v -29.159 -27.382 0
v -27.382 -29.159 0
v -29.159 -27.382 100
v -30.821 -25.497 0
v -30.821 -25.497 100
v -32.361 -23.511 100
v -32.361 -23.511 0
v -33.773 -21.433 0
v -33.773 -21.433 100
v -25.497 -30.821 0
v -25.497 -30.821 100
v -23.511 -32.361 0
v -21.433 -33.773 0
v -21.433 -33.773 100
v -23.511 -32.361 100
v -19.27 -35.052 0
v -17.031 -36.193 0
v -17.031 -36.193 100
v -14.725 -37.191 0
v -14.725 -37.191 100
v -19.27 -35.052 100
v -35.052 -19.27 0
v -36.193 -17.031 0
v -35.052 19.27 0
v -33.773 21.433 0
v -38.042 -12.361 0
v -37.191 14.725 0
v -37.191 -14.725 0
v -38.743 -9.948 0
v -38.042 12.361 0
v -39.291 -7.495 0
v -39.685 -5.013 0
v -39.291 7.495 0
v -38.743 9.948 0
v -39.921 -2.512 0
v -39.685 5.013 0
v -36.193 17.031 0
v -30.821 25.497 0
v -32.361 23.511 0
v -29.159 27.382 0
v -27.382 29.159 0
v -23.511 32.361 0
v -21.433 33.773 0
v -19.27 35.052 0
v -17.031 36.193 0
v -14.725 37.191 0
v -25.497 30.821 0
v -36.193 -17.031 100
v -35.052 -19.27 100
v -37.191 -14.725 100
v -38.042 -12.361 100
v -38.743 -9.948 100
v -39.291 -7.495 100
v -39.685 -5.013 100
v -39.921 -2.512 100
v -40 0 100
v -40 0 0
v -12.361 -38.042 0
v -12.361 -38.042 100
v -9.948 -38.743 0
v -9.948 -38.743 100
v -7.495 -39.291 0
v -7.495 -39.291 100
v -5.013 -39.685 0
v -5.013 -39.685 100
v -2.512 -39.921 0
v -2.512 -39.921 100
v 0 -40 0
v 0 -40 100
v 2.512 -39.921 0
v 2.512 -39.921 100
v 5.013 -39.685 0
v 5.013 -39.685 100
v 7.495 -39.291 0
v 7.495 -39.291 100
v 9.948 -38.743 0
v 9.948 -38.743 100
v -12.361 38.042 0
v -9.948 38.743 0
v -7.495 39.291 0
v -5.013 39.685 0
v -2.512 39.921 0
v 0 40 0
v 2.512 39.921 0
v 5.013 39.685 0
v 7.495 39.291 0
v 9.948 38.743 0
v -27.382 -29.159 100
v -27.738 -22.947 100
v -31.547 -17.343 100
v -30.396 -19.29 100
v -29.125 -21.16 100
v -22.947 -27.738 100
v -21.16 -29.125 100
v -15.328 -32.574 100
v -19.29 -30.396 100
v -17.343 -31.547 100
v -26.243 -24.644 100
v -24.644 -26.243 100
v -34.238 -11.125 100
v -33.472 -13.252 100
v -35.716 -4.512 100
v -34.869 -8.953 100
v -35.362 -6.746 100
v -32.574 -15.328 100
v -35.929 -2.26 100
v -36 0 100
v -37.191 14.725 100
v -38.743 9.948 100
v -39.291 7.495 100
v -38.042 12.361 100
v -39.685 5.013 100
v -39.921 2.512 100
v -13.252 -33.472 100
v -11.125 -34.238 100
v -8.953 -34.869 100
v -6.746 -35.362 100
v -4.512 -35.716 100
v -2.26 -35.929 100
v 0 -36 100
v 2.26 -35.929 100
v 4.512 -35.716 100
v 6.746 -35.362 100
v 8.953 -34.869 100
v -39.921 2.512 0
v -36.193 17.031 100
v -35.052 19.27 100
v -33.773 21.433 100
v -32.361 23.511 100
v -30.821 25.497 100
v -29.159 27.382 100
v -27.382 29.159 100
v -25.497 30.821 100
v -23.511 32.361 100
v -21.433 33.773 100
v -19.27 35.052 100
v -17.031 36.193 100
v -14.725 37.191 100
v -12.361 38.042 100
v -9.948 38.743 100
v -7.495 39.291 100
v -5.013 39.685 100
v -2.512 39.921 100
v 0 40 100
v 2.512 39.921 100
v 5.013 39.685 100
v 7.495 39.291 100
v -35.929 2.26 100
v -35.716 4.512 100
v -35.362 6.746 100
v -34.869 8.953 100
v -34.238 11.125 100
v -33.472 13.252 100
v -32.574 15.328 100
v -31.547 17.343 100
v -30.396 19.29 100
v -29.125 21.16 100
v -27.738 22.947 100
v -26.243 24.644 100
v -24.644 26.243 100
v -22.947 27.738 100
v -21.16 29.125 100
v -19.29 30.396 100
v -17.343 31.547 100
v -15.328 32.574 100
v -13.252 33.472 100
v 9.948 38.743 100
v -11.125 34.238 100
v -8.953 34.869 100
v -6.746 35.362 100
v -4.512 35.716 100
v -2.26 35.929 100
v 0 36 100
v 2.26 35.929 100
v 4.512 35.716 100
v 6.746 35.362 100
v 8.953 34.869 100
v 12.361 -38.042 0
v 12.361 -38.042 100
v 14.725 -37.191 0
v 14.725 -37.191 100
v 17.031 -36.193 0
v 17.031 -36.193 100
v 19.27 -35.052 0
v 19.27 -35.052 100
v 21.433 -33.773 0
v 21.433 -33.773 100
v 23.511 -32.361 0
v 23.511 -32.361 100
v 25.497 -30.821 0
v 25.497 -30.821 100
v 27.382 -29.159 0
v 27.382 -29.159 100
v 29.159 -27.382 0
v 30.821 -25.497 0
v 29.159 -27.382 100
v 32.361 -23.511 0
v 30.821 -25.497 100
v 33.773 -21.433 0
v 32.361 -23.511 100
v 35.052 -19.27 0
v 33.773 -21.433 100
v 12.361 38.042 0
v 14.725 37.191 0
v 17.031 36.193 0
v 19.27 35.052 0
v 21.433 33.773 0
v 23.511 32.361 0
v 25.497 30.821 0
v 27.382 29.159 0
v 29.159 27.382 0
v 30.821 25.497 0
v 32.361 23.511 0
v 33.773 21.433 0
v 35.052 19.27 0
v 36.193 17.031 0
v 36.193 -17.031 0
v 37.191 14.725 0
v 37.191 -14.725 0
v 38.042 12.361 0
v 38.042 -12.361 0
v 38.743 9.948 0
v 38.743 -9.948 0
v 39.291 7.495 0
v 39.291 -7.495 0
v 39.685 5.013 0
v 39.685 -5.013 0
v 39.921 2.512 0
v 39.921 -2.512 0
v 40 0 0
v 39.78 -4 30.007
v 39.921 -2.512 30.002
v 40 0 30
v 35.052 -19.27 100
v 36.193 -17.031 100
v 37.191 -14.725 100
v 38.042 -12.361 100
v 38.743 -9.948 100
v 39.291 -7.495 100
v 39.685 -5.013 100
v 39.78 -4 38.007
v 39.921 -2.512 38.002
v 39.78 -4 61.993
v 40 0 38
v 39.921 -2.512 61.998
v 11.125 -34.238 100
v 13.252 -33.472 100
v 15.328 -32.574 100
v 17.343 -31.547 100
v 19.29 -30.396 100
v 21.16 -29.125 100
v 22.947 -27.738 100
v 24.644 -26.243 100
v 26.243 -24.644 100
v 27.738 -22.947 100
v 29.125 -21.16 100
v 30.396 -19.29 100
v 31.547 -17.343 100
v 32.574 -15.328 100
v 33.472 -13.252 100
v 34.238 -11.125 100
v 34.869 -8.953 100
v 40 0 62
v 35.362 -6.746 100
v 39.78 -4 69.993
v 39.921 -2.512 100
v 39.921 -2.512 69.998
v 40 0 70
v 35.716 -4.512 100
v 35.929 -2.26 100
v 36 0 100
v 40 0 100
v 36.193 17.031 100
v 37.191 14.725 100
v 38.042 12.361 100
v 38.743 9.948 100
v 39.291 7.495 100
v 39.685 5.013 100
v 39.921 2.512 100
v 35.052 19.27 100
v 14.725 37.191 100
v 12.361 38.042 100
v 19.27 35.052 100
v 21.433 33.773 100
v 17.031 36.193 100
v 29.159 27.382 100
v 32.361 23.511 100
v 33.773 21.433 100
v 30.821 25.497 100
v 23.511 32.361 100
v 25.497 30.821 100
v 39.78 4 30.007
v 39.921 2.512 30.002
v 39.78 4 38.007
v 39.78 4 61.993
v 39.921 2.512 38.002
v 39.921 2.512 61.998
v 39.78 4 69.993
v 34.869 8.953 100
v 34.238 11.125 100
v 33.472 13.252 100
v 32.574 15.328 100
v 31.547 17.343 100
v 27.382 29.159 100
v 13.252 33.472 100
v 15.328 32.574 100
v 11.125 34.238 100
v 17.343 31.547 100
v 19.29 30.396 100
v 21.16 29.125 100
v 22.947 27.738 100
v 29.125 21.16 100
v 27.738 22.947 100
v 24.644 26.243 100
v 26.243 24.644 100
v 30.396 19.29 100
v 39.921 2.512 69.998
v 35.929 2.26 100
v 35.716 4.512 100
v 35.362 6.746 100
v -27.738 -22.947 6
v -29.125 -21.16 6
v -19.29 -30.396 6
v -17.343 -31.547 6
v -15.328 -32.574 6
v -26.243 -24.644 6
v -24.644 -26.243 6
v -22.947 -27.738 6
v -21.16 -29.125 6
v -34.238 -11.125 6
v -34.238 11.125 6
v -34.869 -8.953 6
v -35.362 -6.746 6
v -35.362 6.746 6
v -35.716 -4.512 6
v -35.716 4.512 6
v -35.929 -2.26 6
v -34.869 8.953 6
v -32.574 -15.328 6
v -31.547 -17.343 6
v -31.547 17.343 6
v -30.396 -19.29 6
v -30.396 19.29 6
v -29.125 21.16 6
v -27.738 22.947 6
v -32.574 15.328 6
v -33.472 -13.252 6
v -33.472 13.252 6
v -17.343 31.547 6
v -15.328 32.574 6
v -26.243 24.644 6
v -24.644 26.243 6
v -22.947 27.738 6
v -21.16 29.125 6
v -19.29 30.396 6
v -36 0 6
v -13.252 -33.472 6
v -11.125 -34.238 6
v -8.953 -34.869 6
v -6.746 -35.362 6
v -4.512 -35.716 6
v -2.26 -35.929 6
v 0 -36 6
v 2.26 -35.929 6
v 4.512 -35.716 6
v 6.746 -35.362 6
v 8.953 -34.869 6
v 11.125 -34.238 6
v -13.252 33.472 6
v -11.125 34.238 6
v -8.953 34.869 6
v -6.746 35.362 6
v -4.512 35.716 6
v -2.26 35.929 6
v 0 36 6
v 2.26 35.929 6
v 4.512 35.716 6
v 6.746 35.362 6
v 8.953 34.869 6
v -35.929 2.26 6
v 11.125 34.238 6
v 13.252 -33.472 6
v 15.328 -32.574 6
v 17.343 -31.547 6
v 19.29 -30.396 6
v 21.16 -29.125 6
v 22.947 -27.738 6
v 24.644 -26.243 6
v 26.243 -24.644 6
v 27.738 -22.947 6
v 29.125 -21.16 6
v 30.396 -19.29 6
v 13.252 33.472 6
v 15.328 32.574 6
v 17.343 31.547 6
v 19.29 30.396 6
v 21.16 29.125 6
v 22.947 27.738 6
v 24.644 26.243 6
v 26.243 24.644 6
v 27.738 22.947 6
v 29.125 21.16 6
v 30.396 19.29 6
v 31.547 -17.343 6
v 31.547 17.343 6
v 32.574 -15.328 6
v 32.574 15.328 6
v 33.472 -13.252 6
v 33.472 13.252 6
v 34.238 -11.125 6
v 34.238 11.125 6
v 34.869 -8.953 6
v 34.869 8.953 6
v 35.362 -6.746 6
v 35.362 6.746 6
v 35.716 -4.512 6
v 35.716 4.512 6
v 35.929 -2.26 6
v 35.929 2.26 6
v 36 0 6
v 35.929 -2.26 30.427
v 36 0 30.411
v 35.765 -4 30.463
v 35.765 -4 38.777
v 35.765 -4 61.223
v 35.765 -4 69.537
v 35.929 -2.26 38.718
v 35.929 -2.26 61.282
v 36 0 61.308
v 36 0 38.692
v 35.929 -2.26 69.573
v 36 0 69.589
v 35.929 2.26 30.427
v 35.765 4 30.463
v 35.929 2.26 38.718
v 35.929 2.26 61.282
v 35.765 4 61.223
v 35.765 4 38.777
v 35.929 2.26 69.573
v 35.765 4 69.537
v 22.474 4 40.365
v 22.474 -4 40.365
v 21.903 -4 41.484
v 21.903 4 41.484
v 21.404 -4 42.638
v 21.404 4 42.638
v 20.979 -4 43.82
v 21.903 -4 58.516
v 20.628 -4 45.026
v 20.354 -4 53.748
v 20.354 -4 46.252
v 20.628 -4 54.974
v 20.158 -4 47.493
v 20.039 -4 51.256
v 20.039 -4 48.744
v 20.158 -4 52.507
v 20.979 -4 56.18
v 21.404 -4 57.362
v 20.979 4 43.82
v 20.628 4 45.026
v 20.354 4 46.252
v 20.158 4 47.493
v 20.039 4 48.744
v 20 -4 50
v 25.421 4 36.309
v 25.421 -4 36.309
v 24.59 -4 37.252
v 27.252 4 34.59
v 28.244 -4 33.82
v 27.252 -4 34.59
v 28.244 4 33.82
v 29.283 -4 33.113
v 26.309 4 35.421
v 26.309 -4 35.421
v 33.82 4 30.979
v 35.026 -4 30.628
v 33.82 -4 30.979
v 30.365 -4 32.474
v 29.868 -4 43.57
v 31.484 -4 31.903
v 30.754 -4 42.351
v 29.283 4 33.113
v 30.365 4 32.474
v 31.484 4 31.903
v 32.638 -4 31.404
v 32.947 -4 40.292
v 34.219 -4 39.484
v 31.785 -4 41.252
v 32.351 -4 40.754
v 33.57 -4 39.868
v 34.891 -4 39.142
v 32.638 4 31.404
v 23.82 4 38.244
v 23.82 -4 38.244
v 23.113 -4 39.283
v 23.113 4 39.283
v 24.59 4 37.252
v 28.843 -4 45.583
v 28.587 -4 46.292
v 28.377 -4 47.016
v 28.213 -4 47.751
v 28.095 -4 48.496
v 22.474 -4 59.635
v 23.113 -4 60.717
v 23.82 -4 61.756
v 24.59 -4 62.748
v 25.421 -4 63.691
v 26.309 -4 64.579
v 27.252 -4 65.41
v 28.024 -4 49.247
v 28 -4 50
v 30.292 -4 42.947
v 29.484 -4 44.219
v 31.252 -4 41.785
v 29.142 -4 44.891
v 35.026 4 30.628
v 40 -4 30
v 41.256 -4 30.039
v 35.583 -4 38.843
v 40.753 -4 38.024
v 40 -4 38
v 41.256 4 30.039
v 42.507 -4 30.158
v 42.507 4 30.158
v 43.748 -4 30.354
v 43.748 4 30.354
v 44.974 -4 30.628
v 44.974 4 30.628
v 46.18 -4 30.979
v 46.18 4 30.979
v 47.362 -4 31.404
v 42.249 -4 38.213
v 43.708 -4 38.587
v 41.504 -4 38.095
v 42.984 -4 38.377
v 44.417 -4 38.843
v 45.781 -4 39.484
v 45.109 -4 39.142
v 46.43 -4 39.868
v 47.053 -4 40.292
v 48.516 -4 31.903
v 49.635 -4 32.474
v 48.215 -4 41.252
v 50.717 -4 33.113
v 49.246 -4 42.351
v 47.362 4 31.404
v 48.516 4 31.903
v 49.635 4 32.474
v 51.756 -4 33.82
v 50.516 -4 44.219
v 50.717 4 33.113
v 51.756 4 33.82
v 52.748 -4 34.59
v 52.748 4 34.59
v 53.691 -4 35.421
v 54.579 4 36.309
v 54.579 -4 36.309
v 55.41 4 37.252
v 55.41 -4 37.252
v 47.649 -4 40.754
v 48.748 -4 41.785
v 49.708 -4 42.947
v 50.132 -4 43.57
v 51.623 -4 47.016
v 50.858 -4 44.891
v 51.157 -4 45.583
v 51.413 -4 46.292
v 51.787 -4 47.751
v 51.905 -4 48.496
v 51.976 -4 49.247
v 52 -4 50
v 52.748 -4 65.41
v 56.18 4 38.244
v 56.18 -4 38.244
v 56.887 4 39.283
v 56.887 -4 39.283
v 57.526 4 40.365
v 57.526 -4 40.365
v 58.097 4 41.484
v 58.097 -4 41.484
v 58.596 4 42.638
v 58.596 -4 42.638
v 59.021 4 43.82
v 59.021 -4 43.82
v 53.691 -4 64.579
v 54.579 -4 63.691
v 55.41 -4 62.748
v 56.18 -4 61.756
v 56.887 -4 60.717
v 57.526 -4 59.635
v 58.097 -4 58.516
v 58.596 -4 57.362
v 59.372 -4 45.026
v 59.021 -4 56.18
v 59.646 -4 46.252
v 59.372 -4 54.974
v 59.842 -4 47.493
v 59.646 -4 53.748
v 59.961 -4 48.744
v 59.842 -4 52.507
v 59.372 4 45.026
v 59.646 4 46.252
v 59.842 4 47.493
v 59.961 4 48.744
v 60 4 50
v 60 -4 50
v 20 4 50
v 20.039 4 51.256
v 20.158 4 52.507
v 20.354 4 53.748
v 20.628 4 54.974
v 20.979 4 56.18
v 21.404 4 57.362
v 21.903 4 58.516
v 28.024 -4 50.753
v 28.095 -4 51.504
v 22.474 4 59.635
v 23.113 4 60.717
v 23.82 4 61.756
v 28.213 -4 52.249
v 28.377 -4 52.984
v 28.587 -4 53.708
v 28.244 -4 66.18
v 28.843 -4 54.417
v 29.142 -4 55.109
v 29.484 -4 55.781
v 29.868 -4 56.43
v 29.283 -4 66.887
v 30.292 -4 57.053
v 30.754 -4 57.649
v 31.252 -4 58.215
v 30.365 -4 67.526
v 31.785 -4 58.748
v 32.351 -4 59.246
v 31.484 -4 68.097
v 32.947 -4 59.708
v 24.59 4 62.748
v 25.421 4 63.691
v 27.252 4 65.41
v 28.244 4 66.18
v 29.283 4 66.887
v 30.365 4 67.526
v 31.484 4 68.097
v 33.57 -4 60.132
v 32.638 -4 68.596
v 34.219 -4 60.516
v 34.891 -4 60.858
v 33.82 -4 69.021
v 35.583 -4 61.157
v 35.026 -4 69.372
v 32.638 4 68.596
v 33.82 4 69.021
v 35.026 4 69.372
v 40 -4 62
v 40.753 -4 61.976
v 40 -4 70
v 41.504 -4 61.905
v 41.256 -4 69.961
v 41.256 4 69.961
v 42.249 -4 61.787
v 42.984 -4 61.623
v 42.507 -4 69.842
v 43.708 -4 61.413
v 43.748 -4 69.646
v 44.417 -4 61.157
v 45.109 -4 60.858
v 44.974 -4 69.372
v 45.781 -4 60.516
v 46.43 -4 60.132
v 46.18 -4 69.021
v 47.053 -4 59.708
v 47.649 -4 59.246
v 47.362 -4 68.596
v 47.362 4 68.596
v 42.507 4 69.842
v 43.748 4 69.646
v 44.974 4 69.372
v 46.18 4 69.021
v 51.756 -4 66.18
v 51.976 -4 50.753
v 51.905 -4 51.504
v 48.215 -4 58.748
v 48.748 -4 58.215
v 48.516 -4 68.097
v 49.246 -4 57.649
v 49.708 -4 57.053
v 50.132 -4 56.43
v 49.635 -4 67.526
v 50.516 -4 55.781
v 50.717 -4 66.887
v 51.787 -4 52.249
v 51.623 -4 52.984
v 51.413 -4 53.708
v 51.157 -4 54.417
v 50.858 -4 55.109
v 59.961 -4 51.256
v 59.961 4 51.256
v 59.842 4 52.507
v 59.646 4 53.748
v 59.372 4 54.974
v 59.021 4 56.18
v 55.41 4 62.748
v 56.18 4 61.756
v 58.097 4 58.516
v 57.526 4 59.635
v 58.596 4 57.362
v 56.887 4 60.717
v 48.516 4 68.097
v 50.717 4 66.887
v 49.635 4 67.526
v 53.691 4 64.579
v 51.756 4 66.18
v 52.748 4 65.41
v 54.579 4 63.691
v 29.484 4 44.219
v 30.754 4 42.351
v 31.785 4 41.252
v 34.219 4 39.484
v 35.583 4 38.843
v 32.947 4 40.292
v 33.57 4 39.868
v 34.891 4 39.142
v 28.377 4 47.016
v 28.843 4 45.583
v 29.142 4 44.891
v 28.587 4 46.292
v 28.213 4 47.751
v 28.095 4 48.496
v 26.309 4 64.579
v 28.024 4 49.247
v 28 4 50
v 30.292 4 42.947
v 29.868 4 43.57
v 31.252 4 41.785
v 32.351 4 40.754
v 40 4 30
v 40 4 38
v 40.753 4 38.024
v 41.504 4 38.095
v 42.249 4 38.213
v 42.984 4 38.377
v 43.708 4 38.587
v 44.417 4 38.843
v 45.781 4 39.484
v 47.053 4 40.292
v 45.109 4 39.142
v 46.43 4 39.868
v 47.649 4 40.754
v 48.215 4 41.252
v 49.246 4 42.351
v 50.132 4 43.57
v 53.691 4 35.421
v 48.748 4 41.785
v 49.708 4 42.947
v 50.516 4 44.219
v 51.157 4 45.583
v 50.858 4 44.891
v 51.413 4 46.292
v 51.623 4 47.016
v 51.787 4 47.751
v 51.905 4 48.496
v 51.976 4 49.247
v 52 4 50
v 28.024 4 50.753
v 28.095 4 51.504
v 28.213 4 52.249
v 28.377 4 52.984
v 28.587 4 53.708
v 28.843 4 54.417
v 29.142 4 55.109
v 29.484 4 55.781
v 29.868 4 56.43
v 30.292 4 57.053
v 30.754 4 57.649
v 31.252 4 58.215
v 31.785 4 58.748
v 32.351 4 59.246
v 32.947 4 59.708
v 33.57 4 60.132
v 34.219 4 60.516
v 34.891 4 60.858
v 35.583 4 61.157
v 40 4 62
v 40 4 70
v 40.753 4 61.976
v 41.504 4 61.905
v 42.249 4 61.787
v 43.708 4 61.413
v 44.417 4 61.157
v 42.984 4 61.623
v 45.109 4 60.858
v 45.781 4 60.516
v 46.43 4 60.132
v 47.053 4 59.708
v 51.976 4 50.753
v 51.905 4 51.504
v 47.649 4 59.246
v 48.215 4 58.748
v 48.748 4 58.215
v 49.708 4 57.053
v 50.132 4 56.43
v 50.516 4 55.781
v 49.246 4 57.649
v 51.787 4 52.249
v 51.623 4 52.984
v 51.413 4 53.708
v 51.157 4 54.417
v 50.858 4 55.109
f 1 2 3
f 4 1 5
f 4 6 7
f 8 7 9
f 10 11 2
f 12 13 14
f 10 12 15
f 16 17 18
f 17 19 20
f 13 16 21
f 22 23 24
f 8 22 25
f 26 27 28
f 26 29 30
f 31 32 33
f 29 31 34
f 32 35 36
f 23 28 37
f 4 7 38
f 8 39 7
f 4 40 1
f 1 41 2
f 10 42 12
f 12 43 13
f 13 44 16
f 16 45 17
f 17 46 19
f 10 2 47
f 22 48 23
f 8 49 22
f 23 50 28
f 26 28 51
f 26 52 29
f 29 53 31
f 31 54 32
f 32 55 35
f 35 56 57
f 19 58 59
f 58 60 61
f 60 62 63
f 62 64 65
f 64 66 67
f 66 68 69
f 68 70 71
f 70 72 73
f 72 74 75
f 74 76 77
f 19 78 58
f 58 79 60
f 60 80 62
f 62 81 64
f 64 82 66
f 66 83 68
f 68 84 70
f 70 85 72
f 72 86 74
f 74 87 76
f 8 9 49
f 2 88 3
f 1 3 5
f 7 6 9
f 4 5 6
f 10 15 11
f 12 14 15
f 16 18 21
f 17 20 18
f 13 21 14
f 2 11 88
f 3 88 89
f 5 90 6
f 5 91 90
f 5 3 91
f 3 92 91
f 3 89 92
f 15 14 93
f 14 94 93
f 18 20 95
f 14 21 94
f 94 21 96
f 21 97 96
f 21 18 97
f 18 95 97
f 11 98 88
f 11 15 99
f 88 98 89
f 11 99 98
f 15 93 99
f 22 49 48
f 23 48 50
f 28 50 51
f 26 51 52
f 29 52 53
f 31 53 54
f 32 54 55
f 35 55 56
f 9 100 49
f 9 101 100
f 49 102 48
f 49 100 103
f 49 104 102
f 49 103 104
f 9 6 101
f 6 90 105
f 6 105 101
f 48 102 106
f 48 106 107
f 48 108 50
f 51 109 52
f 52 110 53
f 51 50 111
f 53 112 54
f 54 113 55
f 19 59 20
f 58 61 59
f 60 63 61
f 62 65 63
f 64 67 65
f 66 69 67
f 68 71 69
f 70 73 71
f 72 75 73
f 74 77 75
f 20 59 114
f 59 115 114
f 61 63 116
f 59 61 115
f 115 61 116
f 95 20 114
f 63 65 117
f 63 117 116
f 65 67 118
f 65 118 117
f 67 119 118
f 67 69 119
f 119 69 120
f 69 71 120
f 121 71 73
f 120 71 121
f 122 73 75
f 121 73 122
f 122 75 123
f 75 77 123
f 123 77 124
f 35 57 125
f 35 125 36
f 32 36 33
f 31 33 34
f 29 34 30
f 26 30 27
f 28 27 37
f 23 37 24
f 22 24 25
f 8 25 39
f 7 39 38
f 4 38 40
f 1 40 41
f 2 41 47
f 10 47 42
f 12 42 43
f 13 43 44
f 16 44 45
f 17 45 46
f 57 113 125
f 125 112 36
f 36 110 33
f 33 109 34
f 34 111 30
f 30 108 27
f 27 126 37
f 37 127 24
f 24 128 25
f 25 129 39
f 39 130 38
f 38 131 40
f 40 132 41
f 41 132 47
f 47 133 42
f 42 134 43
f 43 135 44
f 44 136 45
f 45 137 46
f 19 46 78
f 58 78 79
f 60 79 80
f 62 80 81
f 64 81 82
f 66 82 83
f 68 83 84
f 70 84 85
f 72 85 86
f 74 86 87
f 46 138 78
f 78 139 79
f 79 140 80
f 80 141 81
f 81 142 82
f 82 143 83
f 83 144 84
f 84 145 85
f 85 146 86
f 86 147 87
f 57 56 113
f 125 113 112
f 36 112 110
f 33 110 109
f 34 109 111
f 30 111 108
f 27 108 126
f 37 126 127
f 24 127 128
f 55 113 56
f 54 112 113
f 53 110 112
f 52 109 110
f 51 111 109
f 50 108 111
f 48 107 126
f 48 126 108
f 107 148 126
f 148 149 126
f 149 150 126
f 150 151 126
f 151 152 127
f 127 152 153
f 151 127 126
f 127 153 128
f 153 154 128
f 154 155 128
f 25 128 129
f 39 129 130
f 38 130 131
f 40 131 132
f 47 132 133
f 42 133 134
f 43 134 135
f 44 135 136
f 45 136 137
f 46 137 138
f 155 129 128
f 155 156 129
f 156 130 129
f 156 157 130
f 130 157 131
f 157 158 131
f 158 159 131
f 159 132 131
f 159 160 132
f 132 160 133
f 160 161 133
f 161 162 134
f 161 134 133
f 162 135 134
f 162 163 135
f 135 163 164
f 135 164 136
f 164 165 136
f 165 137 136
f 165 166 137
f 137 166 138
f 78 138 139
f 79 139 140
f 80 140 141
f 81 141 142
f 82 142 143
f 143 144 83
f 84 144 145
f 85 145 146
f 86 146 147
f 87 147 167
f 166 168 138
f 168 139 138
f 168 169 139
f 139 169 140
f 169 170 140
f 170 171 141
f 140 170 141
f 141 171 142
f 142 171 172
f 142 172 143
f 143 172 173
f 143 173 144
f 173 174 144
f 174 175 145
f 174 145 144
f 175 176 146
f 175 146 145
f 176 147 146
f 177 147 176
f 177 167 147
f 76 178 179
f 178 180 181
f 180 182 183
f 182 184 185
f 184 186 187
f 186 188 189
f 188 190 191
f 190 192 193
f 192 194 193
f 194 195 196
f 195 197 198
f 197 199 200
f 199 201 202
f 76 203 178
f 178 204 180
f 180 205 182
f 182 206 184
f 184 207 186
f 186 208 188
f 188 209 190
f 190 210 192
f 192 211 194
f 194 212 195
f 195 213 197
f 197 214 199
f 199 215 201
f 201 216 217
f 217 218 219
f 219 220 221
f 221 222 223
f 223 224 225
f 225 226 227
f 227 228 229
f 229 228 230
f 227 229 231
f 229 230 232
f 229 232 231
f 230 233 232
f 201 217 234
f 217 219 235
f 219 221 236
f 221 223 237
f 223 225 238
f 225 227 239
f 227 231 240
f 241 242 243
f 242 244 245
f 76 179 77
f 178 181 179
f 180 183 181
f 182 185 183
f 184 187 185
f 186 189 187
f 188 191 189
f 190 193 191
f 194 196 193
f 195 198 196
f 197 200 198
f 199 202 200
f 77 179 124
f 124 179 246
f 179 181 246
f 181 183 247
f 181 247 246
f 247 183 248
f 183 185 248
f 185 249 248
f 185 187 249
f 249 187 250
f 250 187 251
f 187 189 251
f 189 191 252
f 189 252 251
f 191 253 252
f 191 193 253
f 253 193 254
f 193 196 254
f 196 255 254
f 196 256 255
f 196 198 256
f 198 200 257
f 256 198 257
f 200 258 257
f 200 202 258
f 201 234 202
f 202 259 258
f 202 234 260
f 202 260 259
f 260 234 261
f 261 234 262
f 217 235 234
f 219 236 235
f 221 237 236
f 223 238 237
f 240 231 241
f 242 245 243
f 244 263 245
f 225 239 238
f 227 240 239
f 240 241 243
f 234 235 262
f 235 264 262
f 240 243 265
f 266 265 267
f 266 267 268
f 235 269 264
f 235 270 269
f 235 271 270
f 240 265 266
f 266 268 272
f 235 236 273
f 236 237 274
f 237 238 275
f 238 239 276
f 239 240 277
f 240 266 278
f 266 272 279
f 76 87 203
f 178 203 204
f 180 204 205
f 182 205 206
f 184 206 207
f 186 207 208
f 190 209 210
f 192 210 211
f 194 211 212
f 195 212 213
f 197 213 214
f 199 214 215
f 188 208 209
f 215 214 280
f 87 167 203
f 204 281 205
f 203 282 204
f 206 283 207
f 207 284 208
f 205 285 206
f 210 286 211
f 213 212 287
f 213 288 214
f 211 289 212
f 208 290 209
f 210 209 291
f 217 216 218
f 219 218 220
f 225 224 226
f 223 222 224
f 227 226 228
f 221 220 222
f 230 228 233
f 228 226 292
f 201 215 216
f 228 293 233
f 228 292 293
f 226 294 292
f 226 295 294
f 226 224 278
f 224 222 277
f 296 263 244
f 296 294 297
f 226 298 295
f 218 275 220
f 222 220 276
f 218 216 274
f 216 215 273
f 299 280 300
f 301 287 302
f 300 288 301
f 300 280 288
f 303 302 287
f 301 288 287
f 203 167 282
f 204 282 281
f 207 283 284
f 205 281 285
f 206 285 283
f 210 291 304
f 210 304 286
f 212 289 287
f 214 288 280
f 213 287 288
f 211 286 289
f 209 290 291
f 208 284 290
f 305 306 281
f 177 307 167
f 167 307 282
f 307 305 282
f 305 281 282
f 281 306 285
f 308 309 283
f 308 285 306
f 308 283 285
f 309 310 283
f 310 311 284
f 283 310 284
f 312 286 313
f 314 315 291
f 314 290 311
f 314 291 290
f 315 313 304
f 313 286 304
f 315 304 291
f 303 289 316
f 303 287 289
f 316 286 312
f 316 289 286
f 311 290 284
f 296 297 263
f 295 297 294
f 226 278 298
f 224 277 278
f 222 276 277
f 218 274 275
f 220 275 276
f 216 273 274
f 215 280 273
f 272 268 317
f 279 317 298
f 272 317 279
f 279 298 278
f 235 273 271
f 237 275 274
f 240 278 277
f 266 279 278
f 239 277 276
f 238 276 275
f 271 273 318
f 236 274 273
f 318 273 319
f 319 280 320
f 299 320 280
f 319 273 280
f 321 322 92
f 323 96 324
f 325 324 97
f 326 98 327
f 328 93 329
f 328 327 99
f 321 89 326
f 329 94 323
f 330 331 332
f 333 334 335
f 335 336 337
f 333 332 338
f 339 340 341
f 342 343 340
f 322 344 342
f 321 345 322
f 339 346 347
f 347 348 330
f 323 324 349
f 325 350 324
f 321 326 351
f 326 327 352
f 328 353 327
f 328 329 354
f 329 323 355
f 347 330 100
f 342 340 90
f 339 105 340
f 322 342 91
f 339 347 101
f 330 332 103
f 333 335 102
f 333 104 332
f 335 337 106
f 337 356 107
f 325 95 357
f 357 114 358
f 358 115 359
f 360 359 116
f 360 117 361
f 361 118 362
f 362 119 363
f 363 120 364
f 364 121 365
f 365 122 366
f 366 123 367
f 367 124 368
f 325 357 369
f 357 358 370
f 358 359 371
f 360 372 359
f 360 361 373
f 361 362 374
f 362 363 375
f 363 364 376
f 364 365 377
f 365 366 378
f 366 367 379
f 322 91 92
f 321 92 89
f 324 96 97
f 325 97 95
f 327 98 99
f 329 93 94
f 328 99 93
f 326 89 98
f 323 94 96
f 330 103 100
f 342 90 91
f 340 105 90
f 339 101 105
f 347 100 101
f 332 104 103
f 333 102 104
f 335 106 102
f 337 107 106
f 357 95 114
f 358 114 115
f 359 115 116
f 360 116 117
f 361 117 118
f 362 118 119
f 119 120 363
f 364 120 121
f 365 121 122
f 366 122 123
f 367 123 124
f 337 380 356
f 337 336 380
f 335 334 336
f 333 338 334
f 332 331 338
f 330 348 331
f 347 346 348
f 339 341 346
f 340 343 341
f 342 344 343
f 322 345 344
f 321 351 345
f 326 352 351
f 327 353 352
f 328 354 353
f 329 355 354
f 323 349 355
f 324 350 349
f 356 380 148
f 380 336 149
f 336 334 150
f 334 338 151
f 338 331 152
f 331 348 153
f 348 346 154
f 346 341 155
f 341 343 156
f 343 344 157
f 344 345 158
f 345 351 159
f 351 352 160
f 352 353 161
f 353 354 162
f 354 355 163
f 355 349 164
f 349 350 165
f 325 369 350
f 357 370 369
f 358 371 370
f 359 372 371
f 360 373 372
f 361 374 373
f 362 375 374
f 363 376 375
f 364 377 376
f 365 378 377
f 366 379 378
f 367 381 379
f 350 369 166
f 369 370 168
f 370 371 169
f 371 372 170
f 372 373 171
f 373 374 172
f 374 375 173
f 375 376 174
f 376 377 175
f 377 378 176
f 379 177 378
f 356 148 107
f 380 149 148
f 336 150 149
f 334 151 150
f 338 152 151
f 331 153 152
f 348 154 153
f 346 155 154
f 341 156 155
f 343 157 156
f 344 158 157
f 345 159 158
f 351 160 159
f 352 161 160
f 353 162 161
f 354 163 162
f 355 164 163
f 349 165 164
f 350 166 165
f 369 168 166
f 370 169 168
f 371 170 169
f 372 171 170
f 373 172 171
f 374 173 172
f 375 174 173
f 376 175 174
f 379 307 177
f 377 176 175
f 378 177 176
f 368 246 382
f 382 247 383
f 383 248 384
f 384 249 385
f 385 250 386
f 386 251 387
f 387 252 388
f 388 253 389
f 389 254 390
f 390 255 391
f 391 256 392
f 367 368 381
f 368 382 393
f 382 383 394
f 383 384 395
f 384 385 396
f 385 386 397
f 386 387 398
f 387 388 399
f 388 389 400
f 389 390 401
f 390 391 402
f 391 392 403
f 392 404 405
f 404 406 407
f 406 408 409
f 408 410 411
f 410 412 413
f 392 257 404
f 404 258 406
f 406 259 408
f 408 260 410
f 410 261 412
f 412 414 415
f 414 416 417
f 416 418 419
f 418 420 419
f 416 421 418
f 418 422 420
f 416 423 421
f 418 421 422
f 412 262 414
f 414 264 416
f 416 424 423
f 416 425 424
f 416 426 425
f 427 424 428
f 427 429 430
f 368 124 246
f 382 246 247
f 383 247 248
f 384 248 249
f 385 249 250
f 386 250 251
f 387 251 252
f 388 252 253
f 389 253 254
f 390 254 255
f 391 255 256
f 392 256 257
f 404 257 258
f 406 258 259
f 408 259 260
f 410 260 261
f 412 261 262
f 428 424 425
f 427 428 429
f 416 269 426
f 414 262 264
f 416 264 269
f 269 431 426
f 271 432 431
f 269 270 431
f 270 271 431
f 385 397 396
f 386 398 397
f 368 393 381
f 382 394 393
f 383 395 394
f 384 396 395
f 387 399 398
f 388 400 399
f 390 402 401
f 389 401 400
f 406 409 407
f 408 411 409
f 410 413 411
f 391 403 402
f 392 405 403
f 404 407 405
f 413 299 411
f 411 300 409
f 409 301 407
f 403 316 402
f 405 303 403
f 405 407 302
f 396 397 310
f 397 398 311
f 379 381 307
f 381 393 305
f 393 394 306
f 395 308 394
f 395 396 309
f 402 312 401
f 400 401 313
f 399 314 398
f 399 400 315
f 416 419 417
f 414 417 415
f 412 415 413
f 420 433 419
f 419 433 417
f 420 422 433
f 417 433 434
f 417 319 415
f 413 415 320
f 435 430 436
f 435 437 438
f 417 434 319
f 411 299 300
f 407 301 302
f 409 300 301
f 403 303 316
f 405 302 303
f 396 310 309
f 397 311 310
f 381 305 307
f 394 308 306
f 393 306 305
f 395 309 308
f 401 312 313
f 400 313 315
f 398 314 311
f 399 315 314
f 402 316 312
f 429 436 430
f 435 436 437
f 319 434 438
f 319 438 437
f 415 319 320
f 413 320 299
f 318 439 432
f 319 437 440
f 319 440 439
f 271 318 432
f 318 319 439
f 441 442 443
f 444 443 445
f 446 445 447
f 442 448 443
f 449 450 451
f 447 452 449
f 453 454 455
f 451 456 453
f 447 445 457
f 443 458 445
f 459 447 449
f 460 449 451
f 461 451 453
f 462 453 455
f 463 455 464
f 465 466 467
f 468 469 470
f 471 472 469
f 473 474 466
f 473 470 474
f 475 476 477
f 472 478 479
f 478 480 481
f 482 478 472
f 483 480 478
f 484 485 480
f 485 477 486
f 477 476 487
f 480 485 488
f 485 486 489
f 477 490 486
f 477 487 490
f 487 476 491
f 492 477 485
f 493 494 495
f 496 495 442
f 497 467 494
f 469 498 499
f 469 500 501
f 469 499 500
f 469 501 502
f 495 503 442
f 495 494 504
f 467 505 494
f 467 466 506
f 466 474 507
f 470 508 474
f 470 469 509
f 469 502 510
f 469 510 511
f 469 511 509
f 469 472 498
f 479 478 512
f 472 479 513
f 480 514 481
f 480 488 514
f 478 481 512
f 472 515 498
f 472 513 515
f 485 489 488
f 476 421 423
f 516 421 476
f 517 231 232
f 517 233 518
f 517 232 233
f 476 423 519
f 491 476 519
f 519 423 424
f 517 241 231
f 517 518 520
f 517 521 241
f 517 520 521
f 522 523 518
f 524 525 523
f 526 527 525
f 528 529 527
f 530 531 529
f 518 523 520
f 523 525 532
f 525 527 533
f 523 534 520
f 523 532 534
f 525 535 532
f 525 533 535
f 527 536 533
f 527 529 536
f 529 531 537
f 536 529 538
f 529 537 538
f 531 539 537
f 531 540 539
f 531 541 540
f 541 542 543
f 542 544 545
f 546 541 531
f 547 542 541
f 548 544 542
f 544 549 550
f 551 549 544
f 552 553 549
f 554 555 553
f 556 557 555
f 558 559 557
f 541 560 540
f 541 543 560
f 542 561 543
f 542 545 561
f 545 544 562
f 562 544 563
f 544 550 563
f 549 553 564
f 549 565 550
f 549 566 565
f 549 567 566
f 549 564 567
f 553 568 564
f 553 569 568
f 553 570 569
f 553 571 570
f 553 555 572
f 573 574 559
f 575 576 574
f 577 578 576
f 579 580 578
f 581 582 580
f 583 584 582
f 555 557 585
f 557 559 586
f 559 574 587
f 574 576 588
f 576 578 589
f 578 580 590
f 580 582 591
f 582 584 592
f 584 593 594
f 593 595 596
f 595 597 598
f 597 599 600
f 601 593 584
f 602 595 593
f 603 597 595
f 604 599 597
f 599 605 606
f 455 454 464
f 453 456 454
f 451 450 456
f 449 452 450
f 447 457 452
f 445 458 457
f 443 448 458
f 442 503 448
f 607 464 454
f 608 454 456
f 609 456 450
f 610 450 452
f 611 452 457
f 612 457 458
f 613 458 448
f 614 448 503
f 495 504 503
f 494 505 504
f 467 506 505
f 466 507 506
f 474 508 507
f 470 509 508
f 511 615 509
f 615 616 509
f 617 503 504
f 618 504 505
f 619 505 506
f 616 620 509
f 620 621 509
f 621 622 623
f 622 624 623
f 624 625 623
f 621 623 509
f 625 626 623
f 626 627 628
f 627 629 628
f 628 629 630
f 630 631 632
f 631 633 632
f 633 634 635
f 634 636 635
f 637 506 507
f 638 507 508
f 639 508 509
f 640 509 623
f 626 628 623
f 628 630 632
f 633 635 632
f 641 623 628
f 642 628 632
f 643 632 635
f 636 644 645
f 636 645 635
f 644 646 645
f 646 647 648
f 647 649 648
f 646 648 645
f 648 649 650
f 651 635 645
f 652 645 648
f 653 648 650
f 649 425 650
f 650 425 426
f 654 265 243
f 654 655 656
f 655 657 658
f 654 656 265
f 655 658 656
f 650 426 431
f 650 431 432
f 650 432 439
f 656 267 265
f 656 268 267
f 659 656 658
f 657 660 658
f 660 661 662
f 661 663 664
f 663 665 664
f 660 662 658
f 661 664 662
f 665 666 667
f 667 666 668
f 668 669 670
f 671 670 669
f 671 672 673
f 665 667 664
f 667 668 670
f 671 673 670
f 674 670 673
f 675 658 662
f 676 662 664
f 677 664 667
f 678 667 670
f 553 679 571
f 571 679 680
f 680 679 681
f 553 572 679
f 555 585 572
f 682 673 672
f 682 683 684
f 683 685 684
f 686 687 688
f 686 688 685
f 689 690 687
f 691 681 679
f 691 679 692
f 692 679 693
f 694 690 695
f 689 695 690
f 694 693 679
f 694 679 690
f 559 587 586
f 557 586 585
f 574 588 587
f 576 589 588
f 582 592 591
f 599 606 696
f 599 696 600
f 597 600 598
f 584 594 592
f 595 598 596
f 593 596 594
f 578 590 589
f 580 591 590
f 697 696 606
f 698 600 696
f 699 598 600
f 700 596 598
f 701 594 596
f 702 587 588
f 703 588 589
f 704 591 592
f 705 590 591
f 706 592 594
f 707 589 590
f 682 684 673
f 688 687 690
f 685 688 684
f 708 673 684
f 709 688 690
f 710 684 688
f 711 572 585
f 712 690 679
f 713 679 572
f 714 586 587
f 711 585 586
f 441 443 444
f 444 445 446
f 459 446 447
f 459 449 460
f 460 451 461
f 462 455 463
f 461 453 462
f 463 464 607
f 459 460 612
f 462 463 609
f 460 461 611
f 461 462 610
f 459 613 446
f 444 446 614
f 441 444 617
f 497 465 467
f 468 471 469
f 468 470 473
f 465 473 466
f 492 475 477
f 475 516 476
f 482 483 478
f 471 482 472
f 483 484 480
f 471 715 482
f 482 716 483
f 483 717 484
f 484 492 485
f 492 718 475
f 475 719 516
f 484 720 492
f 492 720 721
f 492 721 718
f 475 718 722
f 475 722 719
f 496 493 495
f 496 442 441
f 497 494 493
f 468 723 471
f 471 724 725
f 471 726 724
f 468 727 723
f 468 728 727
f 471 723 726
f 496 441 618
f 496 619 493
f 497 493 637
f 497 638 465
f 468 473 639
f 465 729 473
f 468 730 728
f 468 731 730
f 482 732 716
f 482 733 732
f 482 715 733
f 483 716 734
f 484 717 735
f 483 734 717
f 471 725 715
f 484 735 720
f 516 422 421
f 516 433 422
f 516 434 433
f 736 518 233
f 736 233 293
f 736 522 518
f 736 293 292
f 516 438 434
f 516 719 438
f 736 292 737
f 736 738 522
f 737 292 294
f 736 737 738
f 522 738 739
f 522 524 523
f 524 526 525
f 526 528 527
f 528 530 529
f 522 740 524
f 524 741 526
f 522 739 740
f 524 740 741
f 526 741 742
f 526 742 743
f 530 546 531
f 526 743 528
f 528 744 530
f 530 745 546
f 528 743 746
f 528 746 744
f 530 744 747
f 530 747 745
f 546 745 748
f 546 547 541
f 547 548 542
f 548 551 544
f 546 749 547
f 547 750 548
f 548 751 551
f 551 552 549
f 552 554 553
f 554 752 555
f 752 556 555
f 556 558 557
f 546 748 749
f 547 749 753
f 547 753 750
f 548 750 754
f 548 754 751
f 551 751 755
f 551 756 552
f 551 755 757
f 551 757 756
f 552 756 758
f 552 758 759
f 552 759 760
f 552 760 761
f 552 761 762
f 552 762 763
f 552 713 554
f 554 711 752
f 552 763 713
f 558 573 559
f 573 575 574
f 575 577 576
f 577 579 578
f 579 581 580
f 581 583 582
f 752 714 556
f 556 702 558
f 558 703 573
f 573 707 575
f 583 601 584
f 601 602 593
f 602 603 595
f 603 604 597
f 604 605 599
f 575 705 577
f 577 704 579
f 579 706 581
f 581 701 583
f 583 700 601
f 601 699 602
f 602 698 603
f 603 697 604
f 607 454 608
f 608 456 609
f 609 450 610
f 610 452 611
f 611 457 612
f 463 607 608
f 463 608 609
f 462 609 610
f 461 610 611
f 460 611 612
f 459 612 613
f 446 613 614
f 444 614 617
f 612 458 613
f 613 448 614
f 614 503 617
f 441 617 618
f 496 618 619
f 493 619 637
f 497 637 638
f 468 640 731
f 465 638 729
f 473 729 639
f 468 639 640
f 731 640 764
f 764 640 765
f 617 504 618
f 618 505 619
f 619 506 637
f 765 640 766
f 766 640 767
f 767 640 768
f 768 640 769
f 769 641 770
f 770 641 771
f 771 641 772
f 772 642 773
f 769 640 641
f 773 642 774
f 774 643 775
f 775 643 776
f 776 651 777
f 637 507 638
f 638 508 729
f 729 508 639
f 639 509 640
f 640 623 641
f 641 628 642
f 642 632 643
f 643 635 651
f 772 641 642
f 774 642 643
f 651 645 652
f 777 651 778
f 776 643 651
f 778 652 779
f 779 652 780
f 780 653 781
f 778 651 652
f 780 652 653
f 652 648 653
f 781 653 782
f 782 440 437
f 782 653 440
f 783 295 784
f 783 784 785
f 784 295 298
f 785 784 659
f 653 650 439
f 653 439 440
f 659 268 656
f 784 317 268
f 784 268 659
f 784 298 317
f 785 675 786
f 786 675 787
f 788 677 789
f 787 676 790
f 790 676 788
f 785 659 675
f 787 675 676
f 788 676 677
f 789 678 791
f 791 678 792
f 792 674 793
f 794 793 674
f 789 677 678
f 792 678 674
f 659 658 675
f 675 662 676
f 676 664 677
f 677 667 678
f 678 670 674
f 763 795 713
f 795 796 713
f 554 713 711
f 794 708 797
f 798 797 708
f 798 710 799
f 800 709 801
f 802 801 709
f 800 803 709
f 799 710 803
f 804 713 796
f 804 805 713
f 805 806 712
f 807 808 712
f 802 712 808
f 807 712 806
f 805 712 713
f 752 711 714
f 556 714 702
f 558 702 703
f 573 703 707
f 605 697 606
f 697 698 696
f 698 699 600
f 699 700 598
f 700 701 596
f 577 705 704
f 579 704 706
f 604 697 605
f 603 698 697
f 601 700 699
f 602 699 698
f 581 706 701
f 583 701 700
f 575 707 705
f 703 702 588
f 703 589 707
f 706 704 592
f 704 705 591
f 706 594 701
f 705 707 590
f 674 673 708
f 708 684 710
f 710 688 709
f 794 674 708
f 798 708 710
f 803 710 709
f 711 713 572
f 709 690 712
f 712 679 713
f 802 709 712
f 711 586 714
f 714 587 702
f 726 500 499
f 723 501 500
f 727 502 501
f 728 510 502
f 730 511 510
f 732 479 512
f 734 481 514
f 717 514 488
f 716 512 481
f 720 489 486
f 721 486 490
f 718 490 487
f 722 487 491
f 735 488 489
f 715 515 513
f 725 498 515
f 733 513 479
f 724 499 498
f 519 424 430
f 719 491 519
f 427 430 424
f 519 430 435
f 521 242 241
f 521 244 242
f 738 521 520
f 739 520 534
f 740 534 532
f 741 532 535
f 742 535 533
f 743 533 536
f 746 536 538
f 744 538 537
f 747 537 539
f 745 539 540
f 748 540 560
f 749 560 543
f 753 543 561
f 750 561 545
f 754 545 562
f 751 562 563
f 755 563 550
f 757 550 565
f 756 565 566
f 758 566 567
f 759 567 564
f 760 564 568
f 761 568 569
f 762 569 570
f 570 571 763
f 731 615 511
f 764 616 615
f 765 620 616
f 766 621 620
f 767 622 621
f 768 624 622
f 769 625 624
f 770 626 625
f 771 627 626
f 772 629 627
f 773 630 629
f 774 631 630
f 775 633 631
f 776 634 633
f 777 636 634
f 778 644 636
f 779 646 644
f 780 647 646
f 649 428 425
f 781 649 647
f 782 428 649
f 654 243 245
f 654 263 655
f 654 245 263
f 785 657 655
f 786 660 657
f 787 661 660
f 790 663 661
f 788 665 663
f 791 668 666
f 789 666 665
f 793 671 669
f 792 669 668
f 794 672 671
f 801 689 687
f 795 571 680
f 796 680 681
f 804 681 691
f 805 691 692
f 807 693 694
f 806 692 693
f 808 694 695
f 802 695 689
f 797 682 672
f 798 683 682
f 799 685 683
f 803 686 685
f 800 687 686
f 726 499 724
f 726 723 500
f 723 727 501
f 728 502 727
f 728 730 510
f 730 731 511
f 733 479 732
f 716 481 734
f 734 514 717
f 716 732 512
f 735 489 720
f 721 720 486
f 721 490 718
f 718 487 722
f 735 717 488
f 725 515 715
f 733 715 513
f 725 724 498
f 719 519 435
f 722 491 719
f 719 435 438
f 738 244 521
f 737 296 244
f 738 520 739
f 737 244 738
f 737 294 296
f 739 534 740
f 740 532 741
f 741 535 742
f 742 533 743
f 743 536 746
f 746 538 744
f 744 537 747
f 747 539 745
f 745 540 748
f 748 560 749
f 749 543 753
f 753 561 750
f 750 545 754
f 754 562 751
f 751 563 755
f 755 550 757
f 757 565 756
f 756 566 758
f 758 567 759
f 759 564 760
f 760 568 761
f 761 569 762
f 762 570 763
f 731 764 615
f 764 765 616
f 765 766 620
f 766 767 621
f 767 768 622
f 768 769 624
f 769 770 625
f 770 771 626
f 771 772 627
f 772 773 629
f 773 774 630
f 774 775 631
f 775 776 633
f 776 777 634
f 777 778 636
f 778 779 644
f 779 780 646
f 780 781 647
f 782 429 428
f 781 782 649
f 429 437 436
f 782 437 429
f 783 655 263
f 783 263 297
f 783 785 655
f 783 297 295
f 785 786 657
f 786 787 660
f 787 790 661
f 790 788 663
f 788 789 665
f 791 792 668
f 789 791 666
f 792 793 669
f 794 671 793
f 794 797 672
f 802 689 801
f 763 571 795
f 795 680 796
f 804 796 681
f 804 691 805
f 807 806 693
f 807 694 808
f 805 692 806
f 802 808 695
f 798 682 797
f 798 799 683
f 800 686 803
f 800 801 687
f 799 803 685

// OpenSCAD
// マグカップのパラメータ
outer_diameter = 80;
outer_radius = outer_diameter / 2;
height = 100;
wall_thickness = 4;
bottom_thickness = 6;
handle_thickness = 8;
handle_outer_radius = 20;
handle_inner_radius = 12;

// マグカップ本体
difference() {
    // 外側の円柱
    cylinder(h = height, r = outer_radius, $fn = 100);
    
    // 内側をくり抜く
    translate([0, 0, bottom_thickness])
        cylinder(h = height - bottom_thickness + 1, r = outer_radius - wall_thickness, $fn = 100);
}

// 取手
translate([outer_radius, 0, height / 2])
    rotate([90, 0, 0])
        difference() {
            // 取手の外側
            cylinder(h = handle_thickness, r = handle_outer_radius, center = true, $fn = 100);
            
            // 取手の内側（指を通す穴）
            cylinder(h = handle_thickness + 1, r = handle_inner_radius, center = true, $fn = 100);
            
            // カップ本体と重なる部分を切り取る
            translate([-handle_outer_radius - outer_radius, 0, 0])
                cube([handle_outer_radius * 2, handle_thickness + 2, handle_outer_radius * 2 + 2], center = true);
        }
